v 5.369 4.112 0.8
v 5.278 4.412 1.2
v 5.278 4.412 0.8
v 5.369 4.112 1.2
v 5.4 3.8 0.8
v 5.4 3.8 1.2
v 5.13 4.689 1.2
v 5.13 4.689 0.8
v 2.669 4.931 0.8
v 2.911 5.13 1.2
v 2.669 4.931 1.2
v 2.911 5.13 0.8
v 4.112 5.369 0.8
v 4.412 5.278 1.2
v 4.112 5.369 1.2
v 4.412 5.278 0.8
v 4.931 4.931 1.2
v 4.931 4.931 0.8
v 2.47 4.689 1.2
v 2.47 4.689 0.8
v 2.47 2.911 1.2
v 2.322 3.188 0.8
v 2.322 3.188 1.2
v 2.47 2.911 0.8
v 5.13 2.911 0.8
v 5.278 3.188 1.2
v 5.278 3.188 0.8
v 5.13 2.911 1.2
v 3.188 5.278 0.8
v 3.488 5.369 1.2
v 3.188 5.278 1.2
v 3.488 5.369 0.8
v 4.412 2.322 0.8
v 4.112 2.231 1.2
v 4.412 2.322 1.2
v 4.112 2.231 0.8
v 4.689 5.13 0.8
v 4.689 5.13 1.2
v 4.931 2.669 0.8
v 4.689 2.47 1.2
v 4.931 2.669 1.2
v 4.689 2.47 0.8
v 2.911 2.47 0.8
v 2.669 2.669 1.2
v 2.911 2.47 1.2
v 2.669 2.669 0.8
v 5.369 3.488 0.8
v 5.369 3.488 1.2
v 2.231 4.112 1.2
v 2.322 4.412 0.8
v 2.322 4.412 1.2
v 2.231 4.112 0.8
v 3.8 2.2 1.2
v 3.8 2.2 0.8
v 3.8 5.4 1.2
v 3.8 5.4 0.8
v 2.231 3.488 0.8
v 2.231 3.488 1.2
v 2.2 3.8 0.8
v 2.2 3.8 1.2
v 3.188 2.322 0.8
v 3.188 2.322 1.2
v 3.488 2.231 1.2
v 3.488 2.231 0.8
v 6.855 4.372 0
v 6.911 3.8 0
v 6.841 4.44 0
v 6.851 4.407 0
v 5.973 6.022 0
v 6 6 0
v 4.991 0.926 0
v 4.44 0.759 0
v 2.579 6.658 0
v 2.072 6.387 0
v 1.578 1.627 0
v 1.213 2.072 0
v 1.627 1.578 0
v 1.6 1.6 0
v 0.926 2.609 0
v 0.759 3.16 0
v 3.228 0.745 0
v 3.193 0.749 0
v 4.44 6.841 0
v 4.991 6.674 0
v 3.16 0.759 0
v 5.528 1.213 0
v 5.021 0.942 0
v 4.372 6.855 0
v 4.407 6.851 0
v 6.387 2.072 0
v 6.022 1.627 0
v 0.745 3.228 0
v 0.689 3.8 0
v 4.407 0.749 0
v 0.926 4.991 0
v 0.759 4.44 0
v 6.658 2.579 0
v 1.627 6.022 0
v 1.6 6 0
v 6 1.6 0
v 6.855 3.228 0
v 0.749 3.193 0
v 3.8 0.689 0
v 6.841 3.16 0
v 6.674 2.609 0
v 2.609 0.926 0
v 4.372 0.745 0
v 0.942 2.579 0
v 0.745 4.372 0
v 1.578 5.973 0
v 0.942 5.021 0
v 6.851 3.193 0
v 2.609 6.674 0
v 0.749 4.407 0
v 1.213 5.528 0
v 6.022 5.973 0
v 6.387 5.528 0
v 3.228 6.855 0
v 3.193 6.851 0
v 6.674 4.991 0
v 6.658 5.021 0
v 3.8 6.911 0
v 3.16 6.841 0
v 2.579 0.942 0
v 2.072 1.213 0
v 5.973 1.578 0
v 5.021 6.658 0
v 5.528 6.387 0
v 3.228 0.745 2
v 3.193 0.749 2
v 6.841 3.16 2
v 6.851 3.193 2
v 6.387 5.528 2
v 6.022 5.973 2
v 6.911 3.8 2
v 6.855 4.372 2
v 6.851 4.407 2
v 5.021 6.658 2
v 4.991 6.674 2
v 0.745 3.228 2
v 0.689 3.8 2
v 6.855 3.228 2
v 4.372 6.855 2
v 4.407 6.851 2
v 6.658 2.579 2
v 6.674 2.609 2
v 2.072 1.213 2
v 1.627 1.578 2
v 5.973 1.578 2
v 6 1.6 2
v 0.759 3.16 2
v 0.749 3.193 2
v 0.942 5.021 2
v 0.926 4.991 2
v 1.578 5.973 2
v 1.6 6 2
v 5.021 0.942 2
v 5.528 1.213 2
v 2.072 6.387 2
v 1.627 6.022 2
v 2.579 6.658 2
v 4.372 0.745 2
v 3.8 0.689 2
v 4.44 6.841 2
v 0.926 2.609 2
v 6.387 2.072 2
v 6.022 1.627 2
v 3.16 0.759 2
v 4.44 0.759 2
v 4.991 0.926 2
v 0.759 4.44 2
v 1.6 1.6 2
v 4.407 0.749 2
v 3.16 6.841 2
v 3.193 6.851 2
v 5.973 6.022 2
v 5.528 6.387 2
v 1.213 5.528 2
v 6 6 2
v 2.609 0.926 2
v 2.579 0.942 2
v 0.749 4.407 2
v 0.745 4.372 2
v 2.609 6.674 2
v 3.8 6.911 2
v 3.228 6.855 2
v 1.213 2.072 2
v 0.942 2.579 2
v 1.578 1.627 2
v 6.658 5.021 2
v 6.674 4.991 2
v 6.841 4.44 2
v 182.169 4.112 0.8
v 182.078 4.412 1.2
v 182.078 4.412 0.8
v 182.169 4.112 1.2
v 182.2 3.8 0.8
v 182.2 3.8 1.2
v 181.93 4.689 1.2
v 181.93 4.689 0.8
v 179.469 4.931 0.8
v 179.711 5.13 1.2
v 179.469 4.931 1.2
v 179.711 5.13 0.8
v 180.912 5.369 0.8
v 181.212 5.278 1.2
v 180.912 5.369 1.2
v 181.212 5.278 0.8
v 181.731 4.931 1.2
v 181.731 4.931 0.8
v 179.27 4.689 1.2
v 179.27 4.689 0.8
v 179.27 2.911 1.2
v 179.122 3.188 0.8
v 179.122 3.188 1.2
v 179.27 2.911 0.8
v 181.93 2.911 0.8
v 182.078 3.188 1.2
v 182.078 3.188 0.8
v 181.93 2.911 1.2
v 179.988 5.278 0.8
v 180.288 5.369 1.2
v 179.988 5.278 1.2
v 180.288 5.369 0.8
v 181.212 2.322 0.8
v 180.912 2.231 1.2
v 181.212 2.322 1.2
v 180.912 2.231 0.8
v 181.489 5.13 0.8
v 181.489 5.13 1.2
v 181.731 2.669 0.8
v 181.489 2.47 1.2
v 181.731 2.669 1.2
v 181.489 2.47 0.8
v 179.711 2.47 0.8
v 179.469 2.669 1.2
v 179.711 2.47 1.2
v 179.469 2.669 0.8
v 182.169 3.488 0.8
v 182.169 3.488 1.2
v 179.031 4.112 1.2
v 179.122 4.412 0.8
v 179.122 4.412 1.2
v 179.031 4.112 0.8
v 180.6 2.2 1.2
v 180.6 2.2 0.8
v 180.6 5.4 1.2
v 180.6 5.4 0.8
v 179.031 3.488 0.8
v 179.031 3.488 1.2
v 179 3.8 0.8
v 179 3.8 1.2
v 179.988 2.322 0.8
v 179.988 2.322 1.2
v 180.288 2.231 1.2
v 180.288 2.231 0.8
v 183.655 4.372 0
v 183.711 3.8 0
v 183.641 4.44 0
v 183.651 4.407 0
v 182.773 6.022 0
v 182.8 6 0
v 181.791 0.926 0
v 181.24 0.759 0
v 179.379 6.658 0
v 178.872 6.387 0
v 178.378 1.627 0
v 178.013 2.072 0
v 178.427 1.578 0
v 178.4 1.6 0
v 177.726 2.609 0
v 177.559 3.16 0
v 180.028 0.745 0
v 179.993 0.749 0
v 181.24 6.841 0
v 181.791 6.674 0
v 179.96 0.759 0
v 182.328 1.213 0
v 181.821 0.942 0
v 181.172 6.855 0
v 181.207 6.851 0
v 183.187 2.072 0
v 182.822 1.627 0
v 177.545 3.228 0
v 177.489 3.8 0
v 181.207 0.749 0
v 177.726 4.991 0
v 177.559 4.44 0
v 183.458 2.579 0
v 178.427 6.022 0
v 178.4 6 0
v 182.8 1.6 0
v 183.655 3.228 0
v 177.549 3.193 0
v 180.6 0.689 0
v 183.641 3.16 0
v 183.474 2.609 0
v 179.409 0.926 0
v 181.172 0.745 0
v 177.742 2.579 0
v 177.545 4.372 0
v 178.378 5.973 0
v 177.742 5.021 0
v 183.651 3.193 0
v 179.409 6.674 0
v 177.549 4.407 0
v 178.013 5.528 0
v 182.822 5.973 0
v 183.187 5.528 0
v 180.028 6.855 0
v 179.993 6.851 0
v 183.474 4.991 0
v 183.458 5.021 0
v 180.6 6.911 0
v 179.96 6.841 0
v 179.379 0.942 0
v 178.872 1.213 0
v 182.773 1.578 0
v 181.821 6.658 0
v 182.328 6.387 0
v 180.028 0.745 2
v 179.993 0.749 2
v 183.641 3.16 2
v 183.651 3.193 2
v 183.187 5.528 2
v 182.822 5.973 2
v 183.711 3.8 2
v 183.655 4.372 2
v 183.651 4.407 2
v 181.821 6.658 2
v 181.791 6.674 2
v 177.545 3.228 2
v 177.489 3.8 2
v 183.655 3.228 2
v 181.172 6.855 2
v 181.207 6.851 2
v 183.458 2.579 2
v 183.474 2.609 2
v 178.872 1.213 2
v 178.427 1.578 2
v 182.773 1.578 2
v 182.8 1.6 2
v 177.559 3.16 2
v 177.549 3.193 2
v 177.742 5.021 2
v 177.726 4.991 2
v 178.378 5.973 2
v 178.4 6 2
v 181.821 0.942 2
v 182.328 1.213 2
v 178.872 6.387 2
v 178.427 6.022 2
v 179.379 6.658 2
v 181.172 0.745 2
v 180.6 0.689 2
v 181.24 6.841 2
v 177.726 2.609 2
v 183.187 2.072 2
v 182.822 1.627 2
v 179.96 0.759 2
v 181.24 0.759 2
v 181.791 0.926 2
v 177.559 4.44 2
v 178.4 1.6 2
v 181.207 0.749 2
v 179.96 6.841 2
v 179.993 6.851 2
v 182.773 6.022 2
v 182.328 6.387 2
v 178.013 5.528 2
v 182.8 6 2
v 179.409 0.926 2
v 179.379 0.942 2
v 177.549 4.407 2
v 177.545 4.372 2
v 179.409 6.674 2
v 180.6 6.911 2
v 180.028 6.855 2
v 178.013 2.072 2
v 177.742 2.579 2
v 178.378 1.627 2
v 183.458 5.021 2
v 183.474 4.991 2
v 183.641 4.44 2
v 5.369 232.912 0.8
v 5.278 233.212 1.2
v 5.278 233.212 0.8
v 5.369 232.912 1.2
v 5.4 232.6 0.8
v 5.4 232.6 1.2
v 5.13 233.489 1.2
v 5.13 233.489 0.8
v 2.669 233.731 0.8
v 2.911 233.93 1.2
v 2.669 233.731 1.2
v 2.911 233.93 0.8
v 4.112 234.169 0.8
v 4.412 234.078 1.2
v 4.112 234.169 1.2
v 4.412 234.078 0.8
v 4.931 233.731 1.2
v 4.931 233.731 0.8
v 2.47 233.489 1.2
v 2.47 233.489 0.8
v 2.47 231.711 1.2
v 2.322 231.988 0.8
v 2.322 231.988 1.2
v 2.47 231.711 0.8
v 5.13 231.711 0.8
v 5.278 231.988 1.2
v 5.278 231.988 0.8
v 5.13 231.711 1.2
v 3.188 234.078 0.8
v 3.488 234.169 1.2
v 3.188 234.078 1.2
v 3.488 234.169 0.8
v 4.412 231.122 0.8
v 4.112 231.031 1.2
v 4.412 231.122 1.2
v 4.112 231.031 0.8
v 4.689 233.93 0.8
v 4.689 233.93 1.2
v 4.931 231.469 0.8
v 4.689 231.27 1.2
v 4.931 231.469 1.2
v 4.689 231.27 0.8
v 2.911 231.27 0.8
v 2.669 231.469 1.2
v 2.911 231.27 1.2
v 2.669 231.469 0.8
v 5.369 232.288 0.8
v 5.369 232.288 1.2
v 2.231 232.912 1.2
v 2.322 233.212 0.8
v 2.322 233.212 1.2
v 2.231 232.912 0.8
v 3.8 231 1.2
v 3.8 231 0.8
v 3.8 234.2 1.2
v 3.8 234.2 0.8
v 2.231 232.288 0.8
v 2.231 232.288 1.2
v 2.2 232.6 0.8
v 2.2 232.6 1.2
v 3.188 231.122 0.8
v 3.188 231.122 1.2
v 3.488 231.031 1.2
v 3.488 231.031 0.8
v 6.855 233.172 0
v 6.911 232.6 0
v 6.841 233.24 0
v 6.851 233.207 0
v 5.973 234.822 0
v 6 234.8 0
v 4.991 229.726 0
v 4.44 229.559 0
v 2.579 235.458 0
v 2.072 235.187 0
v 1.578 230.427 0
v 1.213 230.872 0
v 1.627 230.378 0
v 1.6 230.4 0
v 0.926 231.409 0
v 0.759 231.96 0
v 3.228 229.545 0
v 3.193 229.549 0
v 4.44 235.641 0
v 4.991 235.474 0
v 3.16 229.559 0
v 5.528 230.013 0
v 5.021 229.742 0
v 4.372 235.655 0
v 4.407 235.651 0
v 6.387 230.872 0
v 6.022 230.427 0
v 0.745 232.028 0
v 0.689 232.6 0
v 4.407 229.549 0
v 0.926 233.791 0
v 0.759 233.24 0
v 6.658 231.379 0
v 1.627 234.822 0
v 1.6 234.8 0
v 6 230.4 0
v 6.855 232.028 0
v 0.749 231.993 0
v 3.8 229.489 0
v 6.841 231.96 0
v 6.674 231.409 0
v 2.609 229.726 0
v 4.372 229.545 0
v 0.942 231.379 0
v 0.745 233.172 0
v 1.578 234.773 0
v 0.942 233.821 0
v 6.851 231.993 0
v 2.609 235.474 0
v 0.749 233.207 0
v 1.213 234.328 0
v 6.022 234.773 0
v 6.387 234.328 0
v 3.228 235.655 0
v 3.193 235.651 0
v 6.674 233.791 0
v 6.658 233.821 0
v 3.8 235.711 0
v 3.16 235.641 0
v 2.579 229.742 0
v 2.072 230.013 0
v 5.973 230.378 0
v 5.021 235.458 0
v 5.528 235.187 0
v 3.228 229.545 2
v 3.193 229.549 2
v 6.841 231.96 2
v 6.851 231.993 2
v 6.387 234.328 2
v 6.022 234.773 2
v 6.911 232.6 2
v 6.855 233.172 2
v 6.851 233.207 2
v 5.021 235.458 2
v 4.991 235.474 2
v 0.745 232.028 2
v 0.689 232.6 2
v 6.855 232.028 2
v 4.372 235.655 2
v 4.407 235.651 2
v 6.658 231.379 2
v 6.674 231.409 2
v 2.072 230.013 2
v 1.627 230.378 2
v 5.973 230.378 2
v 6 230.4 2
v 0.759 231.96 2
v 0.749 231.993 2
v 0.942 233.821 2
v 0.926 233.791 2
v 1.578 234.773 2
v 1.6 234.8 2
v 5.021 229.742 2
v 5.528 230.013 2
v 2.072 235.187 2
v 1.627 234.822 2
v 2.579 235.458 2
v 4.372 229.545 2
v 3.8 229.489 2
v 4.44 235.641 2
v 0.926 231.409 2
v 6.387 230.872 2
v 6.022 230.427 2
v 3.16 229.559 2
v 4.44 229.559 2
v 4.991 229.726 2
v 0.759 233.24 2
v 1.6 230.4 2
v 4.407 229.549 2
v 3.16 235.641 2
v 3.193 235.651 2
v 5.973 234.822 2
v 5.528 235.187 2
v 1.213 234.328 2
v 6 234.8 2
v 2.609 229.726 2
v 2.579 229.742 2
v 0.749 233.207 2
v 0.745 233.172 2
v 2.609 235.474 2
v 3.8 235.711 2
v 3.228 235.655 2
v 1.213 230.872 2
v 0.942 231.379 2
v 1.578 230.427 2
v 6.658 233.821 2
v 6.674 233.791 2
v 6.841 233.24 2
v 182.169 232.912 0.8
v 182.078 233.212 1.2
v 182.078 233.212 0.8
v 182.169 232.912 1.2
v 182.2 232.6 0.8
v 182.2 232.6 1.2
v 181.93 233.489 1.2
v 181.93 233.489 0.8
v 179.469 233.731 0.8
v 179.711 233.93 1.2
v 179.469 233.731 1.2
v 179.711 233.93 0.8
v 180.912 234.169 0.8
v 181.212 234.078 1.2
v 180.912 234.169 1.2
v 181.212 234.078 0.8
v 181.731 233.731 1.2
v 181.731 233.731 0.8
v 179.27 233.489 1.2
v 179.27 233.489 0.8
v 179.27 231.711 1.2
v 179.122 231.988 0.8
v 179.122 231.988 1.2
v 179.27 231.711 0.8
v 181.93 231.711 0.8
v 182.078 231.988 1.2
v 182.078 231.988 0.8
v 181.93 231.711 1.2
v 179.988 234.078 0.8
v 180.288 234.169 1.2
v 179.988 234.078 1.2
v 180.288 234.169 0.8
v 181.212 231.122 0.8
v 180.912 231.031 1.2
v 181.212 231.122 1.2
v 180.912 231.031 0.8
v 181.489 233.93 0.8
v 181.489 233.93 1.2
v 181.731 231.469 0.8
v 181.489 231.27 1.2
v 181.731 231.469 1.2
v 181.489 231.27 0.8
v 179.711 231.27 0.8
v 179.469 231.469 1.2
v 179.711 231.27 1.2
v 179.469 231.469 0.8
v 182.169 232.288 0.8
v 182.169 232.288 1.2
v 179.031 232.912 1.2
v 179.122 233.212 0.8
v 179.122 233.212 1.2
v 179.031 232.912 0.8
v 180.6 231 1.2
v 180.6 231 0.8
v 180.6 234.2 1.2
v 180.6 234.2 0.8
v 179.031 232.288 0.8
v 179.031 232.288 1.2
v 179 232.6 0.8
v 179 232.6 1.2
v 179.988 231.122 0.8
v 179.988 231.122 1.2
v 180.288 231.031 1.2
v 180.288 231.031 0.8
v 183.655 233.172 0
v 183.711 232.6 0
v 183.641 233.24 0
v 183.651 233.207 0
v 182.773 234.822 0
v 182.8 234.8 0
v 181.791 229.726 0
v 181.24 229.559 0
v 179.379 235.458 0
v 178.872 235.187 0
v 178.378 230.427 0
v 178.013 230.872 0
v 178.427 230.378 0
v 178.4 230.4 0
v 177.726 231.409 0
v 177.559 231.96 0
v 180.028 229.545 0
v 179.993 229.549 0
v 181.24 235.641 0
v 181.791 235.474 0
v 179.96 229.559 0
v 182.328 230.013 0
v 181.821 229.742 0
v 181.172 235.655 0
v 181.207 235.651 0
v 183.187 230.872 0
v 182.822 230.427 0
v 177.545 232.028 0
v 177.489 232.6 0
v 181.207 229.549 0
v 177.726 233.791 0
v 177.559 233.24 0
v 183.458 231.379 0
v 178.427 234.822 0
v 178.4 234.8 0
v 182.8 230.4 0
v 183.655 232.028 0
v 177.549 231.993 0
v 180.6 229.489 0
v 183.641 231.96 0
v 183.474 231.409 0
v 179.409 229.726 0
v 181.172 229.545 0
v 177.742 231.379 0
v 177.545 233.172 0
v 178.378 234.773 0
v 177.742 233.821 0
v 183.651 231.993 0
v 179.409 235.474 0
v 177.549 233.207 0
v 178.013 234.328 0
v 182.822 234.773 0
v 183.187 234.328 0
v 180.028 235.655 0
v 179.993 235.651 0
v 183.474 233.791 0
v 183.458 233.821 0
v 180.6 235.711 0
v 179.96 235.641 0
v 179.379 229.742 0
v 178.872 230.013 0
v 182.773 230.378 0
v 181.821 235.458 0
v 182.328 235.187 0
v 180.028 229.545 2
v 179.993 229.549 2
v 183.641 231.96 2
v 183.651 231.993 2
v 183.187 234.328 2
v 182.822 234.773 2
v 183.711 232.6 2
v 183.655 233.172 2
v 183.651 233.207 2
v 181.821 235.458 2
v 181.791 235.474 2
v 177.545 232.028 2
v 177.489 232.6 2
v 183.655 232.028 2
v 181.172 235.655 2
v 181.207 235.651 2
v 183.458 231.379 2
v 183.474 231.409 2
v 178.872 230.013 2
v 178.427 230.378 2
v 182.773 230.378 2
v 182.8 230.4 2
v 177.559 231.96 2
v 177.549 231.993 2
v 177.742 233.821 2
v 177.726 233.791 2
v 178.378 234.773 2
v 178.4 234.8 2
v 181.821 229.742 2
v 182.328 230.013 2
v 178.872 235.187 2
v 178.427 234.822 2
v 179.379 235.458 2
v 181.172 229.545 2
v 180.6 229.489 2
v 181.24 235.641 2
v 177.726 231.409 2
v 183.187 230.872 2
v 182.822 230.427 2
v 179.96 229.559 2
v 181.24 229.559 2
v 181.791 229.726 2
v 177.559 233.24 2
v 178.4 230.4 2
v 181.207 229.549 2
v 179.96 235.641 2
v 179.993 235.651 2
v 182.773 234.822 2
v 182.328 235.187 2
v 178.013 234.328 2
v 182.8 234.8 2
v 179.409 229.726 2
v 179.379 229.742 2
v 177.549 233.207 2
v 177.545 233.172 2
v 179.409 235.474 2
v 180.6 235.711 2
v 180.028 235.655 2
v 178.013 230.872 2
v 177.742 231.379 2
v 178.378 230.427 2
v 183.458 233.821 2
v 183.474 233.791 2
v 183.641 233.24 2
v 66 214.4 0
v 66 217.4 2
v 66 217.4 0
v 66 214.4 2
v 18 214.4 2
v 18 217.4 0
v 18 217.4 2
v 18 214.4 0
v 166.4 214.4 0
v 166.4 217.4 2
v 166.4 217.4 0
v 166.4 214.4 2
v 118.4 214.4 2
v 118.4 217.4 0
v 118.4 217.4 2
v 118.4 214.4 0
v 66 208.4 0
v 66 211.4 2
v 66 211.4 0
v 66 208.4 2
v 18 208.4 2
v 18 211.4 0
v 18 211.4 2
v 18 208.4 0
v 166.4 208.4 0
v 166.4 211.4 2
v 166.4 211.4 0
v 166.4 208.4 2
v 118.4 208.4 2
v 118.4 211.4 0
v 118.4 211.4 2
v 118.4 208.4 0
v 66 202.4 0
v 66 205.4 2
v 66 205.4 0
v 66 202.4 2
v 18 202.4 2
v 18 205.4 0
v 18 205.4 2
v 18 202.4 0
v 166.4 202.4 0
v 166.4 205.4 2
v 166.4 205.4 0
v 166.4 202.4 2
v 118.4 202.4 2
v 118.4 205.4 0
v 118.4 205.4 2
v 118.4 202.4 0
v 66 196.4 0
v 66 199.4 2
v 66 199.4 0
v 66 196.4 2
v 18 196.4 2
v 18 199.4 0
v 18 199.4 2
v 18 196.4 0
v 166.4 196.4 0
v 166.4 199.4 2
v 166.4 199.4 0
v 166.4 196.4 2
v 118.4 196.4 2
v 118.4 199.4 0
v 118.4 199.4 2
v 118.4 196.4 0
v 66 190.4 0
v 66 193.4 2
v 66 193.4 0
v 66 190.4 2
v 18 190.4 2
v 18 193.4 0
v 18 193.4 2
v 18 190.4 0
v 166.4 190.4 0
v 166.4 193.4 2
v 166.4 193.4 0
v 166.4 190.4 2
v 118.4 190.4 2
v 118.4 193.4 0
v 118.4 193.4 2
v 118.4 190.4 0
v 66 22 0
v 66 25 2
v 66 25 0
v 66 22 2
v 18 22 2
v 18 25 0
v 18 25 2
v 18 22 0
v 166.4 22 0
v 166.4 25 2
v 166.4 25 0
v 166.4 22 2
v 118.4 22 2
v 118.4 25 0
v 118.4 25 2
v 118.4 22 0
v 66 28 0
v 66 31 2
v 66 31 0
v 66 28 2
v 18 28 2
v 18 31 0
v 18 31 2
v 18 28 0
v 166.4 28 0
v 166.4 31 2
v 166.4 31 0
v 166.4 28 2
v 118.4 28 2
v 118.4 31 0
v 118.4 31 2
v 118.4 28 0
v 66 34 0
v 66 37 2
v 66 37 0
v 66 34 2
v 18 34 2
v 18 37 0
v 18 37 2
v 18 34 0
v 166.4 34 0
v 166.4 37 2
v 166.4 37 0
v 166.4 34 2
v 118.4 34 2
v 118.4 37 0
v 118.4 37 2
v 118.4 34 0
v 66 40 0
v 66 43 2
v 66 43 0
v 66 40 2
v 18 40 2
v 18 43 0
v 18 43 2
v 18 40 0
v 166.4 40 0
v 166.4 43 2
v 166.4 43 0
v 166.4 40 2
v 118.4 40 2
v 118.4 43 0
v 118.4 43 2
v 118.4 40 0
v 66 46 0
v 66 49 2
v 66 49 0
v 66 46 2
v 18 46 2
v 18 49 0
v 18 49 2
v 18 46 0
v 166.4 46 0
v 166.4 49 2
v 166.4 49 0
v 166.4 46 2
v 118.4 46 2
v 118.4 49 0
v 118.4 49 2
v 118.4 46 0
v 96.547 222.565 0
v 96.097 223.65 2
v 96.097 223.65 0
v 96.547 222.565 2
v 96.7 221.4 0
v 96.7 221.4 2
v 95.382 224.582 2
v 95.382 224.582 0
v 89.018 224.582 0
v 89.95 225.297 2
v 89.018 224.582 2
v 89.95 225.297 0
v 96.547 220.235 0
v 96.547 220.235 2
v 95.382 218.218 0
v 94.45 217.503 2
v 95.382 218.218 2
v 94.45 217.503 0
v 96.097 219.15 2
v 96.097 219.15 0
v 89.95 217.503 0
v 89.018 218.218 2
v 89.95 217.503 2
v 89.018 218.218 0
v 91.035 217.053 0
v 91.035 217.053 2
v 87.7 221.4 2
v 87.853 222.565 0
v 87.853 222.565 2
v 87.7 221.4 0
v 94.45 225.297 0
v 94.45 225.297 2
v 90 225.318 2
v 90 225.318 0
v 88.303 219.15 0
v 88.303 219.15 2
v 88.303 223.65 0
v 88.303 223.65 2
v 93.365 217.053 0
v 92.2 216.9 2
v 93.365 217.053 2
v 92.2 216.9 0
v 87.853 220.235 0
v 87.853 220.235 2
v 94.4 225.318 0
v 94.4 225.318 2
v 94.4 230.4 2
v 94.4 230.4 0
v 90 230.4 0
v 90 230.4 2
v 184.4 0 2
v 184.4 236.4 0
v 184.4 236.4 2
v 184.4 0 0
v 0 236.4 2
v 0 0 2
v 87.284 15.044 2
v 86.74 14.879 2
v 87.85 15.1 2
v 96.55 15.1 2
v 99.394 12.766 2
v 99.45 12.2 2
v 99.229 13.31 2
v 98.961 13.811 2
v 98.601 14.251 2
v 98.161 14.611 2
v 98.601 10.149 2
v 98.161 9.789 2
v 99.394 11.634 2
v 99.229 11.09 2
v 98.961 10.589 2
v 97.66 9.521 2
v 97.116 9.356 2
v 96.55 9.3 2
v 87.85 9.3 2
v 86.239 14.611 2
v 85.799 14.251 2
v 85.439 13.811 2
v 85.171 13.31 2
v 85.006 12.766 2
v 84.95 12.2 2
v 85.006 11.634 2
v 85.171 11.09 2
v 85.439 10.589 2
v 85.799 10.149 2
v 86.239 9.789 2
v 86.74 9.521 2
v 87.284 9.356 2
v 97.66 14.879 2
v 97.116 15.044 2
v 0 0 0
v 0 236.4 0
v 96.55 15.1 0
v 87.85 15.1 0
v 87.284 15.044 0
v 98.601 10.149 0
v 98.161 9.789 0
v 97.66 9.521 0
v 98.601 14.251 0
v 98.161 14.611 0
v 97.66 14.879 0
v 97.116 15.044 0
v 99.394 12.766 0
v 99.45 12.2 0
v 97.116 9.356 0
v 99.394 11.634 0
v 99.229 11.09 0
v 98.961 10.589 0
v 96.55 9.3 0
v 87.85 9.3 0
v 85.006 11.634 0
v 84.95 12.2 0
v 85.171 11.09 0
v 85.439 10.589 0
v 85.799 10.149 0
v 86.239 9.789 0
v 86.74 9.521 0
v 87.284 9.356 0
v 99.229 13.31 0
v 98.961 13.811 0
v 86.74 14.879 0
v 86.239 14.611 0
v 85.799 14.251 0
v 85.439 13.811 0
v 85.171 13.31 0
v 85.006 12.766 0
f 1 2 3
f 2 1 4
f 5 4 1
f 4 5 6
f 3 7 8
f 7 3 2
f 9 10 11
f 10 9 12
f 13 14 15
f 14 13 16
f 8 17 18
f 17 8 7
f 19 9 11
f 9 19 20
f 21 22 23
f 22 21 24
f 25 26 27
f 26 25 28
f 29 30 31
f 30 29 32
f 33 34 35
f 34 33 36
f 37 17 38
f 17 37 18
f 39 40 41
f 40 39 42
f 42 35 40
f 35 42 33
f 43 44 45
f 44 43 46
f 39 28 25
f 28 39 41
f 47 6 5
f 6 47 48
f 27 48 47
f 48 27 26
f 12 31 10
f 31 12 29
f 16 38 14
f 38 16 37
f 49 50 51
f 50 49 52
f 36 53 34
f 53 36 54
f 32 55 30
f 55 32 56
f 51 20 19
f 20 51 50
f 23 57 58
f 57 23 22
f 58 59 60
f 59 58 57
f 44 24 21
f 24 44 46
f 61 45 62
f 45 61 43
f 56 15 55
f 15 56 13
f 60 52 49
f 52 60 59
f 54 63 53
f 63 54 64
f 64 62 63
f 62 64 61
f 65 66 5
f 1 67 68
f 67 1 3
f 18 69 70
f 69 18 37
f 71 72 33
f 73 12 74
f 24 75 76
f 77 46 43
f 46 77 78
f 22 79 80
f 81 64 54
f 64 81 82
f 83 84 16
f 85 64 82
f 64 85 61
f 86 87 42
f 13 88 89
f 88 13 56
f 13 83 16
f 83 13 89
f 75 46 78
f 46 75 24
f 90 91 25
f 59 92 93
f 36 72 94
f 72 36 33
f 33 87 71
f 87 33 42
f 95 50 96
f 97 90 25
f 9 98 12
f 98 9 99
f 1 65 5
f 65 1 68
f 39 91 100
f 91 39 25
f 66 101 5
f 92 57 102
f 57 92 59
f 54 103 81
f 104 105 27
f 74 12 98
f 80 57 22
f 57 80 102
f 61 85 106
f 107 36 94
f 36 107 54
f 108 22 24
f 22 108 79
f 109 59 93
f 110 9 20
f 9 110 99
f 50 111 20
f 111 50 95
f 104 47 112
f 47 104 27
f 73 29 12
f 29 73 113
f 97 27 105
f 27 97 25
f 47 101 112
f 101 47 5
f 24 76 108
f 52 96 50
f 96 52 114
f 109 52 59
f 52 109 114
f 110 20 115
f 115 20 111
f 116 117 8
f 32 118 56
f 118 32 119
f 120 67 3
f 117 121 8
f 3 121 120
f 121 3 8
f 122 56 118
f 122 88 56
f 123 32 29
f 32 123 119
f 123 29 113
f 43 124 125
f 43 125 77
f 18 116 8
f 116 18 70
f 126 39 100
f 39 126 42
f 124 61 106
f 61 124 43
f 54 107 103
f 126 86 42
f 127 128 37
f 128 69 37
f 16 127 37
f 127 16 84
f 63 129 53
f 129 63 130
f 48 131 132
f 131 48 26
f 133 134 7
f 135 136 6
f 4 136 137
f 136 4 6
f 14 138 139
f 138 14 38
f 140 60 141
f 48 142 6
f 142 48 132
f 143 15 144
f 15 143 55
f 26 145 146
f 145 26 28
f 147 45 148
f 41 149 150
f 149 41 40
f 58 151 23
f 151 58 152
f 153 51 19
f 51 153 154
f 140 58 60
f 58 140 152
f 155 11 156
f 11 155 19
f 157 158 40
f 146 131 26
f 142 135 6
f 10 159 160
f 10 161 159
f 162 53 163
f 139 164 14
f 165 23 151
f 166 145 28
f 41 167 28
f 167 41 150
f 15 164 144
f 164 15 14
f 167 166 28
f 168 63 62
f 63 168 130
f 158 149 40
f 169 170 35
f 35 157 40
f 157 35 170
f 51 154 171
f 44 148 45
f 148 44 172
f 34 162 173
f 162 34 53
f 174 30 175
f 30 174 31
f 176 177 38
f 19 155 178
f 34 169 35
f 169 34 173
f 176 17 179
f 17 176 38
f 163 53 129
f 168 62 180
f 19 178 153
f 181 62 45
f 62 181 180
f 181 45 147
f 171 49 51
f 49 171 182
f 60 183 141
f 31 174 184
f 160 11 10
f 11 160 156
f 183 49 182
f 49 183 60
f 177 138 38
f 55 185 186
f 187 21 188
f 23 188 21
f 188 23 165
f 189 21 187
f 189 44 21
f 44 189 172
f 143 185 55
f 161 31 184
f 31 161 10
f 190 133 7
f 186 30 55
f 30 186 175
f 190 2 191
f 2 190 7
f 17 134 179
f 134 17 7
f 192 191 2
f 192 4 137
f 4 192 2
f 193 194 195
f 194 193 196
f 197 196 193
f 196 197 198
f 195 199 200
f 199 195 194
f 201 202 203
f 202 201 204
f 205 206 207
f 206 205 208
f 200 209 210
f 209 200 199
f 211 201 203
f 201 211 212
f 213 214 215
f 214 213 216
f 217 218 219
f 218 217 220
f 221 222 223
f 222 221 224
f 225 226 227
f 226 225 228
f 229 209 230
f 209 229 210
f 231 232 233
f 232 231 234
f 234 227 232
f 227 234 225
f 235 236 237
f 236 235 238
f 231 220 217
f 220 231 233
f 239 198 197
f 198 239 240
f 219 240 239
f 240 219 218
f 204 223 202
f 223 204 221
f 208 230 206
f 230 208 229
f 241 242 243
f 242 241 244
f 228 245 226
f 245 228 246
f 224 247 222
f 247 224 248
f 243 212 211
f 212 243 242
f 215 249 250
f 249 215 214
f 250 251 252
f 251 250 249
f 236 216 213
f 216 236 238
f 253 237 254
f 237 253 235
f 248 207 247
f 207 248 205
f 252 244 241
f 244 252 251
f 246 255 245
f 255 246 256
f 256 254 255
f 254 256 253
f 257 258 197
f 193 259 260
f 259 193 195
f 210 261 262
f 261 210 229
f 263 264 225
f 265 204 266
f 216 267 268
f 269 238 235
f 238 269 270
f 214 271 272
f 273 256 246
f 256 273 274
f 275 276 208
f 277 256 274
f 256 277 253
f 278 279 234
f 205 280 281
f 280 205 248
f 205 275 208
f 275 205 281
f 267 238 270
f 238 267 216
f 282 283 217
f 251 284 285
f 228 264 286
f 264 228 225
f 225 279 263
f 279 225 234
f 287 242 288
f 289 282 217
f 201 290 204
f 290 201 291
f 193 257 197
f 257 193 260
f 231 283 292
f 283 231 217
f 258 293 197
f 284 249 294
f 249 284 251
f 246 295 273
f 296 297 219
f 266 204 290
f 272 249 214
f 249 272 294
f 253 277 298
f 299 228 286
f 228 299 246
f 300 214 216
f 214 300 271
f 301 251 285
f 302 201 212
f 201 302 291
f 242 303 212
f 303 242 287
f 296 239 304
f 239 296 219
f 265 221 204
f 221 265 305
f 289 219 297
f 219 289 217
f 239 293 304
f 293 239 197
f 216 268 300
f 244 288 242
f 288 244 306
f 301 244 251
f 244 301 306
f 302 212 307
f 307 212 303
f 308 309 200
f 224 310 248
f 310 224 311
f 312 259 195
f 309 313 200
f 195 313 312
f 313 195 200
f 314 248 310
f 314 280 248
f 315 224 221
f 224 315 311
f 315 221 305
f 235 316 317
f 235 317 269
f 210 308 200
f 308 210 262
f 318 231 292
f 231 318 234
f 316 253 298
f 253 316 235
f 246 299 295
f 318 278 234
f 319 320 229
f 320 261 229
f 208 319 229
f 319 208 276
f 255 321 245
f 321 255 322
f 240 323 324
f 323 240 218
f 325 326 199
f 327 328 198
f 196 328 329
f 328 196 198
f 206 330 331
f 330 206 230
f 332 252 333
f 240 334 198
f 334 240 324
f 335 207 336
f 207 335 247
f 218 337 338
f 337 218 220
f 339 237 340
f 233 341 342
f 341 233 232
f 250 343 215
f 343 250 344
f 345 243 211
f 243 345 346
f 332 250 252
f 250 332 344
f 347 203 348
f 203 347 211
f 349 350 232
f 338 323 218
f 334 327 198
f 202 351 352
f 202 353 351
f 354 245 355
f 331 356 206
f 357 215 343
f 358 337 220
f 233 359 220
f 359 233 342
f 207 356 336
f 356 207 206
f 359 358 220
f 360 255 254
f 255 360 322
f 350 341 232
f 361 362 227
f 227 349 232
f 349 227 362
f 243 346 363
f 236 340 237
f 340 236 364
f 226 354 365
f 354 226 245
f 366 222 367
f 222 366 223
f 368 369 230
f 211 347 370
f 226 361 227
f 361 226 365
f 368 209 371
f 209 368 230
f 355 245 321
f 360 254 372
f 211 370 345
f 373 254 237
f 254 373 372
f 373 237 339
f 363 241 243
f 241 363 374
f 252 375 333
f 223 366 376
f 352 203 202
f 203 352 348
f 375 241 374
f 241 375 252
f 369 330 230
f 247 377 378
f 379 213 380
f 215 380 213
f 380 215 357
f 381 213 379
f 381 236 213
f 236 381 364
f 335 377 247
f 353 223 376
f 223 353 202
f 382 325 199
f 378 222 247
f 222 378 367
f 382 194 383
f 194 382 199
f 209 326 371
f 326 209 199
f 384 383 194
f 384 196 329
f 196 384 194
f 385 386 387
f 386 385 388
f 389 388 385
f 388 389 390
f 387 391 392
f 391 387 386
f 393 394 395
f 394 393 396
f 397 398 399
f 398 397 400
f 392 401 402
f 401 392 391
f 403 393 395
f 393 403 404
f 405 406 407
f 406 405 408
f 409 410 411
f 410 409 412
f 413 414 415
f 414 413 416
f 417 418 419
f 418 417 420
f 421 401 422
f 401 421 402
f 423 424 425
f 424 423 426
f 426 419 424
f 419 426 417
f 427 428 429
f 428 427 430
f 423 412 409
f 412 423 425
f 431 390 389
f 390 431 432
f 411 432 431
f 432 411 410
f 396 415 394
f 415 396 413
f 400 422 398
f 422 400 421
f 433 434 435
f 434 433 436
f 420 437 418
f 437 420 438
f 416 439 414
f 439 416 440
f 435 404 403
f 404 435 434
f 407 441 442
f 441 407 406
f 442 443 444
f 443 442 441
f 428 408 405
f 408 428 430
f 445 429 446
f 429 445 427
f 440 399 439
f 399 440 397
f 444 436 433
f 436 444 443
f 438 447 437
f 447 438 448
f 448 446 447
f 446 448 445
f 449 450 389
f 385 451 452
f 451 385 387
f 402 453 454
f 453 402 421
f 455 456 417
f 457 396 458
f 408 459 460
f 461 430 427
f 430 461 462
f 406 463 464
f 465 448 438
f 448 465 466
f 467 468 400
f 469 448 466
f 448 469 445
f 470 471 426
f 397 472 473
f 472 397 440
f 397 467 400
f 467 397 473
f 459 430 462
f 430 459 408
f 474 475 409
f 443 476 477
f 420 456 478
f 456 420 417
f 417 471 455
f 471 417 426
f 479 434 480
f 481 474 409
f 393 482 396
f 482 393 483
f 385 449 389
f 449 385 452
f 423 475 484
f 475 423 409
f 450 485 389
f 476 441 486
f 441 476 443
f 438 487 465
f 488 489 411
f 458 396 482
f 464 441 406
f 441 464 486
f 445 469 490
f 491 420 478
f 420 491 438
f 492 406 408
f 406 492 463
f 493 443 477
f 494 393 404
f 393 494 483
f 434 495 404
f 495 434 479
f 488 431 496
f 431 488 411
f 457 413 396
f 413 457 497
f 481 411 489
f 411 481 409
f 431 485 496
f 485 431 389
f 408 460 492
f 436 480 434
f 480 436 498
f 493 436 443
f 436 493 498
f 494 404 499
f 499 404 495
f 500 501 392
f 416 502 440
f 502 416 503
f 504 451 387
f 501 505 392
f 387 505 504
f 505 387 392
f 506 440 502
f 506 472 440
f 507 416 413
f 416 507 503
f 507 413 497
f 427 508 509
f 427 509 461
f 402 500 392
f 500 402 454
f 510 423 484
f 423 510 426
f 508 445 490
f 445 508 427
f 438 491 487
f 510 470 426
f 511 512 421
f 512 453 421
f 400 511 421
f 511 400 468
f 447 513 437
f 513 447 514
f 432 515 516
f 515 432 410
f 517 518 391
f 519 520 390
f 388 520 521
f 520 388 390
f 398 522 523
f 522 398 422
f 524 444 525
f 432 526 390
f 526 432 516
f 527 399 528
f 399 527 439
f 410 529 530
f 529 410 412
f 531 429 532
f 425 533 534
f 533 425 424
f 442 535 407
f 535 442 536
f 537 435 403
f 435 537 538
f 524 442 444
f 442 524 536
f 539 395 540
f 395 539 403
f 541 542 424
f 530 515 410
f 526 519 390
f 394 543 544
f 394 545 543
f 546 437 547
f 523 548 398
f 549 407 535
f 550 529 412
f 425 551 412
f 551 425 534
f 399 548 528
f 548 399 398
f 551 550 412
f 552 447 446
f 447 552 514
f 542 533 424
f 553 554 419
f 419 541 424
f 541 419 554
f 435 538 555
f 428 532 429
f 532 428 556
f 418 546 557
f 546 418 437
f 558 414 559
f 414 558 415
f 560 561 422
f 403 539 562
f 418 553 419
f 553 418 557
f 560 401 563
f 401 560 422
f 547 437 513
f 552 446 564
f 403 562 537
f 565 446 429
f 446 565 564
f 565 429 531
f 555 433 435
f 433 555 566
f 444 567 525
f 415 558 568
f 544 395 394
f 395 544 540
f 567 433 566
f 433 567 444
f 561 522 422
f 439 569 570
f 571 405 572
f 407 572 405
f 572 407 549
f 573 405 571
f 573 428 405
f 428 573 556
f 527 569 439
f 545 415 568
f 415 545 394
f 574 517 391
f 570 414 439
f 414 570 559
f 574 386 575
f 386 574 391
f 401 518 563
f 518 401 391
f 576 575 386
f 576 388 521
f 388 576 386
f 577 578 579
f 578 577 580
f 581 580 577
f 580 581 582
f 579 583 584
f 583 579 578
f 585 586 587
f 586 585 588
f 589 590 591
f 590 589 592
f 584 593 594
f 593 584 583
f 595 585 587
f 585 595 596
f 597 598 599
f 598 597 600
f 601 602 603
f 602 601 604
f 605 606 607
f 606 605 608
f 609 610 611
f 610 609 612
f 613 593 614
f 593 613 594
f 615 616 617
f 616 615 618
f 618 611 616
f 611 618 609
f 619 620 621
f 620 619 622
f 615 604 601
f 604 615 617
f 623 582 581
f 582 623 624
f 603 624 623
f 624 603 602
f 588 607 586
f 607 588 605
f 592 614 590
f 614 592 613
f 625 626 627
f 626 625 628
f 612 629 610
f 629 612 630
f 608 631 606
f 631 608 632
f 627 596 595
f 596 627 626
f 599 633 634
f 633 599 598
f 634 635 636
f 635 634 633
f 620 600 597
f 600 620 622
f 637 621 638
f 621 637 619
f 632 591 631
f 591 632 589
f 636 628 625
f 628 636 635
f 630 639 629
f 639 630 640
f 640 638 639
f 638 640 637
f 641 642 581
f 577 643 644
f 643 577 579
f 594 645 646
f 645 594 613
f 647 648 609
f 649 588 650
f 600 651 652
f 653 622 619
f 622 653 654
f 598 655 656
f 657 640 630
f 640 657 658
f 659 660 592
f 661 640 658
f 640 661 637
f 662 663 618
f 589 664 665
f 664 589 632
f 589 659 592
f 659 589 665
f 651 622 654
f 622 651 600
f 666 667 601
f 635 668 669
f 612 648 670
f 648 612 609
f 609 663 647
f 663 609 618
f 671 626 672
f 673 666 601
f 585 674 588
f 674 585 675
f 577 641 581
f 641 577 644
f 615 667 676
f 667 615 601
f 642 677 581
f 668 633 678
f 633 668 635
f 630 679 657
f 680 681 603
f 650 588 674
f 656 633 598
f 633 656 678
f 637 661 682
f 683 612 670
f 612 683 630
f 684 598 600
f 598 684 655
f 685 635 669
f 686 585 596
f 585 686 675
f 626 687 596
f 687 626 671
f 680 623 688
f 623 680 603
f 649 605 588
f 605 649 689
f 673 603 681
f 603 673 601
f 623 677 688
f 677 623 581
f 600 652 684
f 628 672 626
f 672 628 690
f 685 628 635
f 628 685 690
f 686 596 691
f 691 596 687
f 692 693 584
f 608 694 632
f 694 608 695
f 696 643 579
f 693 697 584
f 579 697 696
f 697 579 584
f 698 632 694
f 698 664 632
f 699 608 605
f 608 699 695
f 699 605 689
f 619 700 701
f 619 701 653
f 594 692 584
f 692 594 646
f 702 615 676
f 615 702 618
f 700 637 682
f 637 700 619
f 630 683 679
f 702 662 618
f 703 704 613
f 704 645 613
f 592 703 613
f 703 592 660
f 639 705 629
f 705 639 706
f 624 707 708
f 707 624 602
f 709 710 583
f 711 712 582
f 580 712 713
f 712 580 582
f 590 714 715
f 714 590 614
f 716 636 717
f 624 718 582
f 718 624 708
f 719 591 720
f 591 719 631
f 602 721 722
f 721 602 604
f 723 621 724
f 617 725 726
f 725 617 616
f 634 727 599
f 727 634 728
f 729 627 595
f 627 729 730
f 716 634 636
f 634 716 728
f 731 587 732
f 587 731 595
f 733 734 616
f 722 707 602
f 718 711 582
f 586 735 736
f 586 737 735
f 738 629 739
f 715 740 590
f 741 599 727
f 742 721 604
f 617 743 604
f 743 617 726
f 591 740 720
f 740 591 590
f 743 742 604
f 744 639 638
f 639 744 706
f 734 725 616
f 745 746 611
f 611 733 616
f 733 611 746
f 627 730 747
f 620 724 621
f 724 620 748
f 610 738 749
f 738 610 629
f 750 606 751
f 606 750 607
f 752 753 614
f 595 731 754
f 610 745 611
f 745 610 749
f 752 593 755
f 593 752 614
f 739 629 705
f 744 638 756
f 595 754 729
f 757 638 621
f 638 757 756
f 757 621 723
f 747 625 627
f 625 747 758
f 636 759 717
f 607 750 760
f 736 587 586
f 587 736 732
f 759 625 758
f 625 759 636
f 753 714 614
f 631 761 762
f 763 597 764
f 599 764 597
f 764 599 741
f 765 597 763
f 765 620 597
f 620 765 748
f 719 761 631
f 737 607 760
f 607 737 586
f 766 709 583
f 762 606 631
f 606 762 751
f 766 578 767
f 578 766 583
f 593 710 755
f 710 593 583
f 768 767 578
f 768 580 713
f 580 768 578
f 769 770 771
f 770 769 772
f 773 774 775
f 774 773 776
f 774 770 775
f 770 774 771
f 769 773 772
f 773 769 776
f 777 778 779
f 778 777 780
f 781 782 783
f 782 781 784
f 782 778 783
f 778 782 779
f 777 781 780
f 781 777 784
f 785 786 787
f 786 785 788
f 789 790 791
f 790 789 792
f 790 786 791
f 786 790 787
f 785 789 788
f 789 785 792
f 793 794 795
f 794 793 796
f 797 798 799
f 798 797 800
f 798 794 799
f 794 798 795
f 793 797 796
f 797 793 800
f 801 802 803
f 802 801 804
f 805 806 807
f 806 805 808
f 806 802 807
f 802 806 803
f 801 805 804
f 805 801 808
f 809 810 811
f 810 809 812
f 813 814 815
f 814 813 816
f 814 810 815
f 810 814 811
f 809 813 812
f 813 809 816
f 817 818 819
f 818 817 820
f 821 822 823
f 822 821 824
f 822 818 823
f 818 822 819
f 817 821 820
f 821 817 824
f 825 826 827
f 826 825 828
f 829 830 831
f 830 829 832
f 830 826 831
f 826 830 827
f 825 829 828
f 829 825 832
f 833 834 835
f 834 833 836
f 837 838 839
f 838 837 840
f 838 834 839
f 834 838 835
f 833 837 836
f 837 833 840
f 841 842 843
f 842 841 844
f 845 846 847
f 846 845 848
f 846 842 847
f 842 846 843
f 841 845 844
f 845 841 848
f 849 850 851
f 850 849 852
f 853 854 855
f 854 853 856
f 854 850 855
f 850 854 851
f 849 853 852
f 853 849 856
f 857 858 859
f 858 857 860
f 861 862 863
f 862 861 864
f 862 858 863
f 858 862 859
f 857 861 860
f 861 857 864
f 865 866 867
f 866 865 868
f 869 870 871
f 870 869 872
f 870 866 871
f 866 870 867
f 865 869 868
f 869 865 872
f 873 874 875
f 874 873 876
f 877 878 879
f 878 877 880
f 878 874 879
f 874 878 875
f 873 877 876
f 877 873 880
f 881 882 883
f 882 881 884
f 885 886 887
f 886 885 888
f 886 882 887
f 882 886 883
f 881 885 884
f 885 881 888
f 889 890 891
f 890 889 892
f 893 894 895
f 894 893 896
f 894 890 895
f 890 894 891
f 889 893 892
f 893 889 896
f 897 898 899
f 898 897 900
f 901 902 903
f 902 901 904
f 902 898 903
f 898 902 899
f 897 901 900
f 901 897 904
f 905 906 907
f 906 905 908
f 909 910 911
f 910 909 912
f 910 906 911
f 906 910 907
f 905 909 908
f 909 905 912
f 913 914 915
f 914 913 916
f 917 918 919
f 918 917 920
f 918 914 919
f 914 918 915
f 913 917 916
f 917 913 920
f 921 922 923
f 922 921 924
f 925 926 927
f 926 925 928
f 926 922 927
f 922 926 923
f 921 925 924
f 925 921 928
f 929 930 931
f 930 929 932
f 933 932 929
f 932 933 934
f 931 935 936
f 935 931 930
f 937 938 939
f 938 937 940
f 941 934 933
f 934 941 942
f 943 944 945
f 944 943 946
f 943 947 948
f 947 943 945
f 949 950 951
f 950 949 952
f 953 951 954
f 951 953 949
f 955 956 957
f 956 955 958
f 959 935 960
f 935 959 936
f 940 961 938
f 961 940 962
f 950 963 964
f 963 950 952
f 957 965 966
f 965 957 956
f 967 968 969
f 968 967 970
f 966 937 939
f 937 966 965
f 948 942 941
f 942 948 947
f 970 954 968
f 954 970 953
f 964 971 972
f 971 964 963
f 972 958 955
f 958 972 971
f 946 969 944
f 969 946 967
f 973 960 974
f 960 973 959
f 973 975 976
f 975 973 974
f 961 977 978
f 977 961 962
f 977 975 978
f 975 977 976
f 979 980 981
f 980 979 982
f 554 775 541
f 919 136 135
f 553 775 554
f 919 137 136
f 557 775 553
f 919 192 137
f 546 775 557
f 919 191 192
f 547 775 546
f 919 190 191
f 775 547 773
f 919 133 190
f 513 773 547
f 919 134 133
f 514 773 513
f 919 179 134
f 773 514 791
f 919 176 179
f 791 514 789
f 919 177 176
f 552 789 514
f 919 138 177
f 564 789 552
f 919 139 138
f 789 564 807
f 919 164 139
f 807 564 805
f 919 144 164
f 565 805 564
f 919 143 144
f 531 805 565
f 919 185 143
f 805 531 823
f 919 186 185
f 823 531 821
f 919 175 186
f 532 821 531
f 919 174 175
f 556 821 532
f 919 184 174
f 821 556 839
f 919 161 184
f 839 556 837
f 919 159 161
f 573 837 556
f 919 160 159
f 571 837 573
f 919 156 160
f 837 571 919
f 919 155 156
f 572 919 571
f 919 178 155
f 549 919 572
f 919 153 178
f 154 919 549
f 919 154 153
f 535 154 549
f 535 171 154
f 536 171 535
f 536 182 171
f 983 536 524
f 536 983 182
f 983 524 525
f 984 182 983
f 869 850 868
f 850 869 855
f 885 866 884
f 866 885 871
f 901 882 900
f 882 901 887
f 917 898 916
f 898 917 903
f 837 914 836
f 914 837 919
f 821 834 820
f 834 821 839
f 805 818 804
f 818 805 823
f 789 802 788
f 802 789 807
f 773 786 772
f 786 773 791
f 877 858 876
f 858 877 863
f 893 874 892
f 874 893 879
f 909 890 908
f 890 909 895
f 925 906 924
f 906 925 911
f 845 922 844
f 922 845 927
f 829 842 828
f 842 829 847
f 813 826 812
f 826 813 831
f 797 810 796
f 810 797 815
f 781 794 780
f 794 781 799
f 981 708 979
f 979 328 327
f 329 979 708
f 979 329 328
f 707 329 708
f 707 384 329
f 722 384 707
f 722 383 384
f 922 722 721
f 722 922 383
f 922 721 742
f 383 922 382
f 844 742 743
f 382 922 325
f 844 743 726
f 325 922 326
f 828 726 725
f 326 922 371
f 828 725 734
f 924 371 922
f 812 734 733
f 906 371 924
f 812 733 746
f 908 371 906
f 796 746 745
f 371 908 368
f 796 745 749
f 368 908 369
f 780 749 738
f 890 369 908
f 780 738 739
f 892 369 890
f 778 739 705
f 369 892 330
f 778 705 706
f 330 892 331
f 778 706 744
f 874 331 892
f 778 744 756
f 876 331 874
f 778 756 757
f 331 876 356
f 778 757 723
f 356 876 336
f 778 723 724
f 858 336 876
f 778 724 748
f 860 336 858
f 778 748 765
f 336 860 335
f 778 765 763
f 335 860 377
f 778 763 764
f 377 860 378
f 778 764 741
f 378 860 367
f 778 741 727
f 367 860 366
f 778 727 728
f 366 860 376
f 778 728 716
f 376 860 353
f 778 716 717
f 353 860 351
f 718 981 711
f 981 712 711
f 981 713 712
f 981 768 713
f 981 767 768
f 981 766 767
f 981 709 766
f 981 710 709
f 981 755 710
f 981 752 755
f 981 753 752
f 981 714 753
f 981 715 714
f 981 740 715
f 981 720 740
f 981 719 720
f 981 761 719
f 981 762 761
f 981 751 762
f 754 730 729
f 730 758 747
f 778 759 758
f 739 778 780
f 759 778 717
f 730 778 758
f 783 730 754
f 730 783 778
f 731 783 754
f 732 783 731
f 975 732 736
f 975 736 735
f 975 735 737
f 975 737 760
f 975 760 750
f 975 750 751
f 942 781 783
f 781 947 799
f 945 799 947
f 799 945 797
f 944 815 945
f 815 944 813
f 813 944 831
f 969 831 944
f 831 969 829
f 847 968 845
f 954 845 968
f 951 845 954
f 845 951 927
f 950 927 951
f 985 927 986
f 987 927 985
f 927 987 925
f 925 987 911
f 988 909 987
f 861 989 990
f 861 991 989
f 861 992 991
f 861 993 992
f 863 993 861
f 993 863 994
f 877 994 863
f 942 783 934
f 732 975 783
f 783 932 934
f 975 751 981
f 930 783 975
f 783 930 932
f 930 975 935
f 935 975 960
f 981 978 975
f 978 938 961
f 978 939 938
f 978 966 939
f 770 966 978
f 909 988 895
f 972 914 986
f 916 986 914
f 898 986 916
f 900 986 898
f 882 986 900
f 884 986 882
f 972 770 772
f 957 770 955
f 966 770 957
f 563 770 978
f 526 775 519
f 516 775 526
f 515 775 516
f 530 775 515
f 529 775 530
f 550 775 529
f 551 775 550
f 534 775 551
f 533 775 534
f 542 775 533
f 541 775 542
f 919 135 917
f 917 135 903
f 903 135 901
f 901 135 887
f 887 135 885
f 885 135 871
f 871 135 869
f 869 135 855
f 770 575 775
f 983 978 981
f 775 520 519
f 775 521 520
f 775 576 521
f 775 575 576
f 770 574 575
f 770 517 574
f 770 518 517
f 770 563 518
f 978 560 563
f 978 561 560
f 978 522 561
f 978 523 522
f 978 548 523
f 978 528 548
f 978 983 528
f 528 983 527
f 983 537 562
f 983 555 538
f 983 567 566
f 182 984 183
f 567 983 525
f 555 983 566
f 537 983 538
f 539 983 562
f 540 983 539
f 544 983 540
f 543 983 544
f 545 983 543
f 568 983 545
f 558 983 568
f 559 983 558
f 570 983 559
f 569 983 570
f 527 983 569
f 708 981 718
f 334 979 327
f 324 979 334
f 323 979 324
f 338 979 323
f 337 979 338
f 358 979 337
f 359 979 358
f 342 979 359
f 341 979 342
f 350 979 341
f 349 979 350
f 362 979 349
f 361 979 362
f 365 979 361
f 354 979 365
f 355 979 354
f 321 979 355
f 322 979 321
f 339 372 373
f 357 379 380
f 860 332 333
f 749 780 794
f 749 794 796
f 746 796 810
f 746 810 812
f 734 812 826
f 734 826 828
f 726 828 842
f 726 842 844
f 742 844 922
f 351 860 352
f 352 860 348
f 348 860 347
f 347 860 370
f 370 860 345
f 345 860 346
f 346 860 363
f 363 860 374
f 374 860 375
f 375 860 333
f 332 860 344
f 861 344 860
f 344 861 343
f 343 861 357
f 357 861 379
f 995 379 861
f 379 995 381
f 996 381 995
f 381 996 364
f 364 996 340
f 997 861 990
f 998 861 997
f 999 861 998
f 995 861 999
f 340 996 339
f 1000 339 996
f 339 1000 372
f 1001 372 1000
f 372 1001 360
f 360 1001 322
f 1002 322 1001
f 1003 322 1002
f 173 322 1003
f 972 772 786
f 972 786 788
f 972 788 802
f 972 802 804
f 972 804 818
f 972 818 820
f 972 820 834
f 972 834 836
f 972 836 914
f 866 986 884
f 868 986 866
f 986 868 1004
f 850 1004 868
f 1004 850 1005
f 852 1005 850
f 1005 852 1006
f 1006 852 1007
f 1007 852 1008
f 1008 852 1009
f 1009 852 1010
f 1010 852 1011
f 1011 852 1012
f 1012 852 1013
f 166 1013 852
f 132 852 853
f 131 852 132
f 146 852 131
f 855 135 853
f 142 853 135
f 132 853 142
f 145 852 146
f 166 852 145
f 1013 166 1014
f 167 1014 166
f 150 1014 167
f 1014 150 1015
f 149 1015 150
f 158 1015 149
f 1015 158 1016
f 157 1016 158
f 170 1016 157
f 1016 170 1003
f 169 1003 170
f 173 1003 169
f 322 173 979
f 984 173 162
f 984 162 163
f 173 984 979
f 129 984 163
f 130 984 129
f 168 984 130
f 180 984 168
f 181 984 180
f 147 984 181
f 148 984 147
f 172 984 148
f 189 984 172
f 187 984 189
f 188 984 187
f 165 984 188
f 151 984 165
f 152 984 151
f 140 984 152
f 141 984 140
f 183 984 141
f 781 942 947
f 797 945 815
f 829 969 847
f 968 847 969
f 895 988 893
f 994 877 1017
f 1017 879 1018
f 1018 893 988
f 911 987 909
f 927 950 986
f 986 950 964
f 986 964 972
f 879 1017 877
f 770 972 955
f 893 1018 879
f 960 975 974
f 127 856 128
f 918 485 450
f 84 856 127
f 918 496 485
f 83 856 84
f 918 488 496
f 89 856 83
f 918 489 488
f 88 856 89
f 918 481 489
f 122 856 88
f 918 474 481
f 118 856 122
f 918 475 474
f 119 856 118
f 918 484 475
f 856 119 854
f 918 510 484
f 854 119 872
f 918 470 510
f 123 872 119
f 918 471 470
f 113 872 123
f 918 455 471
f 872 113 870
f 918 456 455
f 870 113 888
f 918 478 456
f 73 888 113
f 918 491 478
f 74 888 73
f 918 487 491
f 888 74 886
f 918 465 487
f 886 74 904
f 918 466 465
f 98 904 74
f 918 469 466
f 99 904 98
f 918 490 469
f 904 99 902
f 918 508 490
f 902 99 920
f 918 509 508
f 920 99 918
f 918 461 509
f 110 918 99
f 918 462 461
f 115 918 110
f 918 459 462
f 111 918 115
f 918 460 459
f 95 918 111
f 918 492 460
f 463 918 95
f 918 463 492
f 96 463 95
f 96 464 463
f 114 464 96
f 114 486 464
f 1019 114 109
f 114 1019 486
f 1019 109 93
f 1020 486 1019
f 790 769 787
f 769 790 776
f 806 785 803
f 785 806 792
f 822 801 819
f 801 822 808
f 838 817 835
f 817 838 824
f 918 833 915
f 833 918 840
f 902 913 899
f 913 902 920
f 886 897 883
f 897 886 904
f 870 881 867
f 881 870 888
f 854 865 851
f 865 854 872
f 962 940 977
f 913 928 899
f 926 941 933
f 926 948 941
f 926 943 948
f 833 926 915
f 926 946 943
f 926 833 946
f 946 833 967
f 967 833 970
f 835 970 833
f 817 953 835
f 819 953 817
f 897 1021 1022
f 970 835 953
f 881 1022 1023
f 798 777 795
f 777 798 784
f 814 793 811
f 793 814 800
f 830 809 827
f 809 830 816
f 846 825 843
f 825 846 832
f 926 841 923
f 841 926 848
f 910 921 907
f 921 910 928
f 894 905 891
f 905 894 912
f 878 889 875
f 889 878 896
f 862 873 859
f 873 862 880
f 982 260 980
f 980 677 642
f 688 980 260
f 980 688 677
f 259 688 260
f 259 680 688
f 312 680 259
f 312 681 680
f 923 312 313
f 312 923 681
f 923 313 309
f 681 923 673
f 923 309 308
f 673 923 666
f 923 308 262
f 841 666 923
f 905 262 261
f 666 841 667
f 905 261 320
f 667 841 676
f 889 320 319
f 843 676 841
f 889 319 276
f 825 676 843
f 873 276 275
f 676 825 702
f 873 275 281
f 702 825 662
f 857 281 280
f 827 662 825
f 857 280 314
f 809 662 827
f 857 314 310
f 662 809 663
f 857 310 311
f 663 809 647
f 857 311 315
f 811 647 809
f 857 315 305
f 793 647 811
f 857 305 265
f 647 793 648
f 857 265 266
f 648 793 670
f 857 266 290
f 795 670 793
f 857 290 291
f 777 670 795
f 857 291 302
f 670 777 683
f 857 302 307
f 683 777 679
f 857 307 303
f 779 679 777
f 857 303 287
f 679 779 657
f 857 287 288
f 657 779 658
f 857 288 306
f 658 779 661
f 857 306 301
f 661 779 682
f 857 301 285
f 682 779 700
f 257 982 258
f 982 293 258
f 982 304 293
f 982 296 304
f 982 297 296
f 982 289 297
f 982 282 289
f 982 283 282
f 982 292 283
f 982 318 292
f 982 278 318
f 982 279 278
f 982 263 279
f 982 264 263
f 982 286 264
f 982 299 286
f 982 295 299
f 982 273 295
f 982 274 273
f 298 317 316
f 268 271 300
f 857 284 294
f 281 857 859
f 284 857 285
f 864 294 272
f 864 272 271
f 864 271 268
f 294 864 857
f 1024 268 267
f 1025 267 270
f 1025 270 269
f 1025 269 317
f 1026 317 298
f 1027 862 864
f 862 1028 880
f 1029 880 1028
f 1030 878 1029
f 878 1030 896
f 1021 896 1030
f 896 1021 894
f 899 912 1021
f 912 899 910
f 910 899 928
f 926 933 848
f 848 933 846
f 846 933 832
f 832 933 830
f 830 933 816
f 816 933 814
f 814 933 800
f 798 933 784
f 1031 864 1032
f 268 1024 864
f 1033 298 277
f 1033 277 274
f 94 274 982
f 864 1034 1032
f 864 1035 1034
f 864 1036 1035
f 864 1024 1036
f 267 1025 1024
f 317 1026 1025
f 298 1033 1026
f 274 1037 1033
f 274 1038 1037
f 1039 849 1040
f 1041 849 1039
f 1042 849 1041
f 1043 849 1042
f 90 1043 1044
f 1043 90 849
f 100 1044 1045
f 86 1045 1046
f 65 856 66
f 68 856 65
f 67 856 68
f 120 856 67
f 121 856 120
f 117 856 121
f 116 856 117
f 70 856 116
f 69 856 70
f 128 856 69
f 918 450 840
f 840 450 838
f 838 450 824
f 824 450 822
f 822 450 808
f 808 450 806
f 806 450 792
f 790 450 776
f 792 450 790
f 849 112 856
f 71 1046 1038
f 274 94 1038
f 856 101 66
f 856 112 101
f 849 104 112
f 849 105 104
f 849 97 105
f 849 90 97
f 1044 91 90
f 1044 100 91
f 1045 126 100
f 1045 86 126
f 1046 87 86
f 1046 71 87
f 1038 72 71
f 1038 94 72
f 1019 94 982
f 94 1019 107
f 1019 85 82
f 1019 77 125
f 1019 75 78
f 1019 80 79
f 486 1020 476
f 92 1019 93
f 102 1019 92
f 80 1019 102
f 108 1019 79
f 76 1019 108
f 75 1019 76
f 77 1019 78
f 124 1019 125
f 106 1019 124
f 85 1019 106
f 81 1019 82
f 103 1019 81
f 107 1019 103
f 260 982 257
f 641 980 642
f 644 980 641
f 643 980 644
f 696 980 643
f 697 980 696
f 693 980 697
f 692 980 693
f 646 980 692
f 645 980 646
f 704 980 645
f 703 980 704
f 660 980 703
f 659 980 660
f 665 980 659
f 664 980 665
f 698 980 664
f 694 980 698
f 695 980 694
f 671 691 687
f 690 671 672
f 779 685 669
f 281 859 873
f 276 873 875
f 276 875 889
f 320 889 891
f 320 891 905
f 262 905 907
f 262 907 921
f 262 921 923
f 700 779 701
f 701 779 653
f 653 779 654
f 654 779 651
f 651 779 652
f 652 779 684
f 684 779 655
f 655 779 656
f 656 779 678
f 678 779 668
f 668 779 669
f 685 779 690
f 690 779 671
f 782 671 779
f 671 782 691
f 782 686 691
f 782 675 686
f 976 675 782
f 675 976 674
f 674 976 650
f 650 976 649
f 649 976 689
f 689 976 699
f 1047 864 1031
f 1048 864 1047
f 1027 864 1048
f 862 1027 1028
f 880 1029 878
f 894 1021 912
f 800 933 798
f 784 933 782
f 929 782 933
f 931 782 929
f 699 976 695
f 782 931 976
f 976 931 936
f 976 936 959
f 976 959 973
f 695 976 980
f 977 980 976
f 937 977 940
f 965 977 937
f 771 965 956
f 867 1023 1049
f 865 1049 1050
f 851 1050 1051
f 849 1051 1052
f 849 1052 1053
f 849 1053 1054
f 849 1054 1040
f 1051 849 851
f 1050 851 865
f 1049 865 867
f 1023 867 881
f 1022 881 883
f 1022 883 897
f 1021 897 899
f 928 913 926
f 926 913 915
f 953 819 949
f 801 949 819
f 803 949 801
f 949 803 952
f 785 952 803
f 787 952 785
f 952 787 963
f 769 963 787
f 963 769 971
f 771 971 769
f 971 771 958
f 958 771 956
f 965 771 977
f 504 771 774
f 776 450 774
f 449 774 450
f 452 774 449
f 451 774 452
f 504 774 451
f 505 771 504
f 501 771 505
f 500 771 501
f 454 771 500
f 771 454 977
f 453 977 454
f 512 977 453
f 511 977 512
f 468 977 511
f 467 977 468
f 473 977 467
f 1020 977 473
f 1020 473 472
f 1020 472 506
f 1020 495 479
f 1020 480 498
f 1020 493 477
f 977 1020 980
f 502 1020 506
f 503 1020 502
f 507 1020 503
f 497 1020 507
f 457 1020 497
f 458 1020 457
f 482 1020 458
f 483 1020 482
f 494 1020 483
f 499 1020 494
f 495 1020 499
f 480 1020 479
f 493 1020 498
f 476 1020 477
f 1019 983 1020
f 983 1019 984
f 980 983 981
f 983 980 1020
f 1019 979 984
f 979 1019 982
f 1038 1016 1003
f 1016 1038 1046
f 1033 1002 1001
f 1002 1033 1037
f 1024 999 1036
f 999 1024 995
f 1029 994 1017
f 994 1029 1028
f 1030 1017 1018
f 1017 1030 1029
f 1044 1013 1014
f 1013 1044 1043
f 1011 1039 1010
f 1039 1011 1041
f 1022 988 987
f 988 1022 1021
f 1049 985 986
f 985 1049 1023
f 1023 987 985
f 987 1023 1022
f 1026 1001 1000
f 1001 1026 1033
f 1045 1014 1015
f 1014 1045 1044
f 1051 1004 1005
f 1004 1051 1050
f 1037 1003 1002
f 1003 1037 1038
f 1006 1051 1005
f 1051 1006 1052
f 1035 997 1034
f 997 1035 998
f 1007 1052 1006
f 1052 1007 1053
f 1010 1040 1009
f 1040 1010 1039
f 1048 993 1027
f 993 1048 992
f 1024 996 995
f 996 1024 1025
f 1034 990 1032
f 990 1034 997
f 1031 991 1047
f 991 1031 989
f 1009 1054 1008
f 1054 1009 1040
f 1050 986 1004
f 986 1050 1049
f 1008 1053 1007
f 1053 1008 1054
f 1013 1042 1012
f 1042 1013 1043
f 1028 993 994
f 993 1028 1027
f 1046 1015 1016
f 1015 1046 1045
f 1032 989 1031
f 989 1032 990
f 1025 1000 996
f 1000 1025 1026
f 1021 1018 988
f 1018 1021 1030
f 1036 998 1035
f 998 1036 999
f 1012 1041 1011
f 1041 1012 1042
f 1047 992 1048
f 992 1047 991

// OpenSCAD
// ==============================================================================
// WORDCLOCK ESP32 - OPCION 2: TAPA TRASERA INCRUSTADA AL RAS (MARCO OPTIMIZADO)
// PIEZA 3: TAPA INCRUSTADA DE 184.4 x 236.4 mm
// Offset de tornillos: 3.8 mm desde borde de tapa (Alineado a 5.6 mm desde el exterior del marco)
// Avellanado simétrico (doble cara) para que la cabeza del tornillo encaje sin importar el lado
// ==============================================================================

box_w       = 188.0;
box_h       = 240.0;
wall_thick  = 1.6;     // Pared optimizada de 1.6 mm
clearance   = 0.2;     // 0.2 mm de holgura por lado
lid_thick   = 2.0;

// Dimensiones reducidas para encajar dentro del perímetro interno
lid_w       = box_w - (2 * wall_thick) - (2 * clearance); // 184.4 mm
lid_h       = box_h - (2 * wall_thick) - (2 * clearance); // 236.4 mm

// Offset del centro de tornillo desde el borde de la tapa incrustada
// Frame offset (5.6 mm) - Margen borde (1.8 mm) = 3.8 mm
screw_off_lid = (wall_thick + 4.0) - wall_thick - clearance; // 3.8 mm

module double_countersunk_hole(h = 2.0) {
    union() {
        // Pasante central M3
        translate([0, 0, -0.1]) cylinder(r = 1.6, h = h + 0.2, $fn = 32);
        
        // Avellanado Cara A (Cono de 1.6 mm a 3.3 mm en los primeros 0.9 mm)
        translate([0, 0, -0.1]) cylinder(r1 = 3.3, r2 = 1.6, h = 0.9, $fn = 32);
        
        // Avellanado Cara B (Cono de 1.6 mm a 3.3 mm en los últimos 0.9 mm)
        translate([0, 0, h - 0.8]) cylinder(r1 = 1.6, r2 = 3.3, h = 0.9, $fn = 32);
    }
}

module wordclock_back_lid() {
    difference() {
        // 1. Placa Base Incrustada (184.4 x 236.4 x 2.0 mm)
        cube([lid_w, lid_h, lid_thick]);

        // 2. Orificios M3 con Avellanado Doble Cara (Alineados a 5.6 mm del marco)
        translate([screw_off_lid, screw_off_lid, 0])                 double_countersunk_hole(lid_thick);
        translate([lid_w - screw_off_lid, screw_off_lid, 0])         double_countersunk_hole(lid_thick);
        translate([screw_off_lid, lid_h - screw_off_lid, 0])         double_countersunk_hole(lid_thick);
        translate([lid_w - screw_off_lid, lid_h - screw_off_lid, 0]) double_countersunk_hole(lid_thick);

        // 3. Ranuras de Ventilación Superior
        for (i = [0 : 4]) {
            y_slot = lid_h - 22 - (i * 6);
            translate([18, y_slot, -0.1])         cube([48, 3.0, lid_thick + 0.2]);
            translate([lid_w - 66, y_slot, -0.1]) cube([48, 3.0, lid_thick + 0.2]);
        }

        // 4. Ranuras de Ventilación Inferior
        for (i = [0 : 4]) {
            y_slot = 22 + (i * 6);
            translate([18, y_slot, -0.1])         cube([48, 3.0, lid_thick + 0.2]);
            translate([lid_w - 66, y_slot, -0.1]) cube([48, 3.0, lid_thick + 0.2]);
        }

        // 5. RANURA USB-C OBLONGA / PANELSOCKET (14.5 x 5.8 mm con r = 2.9 mm)
        translate([lid_w / 2, 12.2, -0.1]) {
            hull() {
                translate([-4.35, 0, 0]) cylinder(r = 2.9, h = lid_thick + 0.2, $fn = 32);
                translate([ 4.35, 0, 0]) cylinder(r = 2.9, h = lid_thick + 0.2, $fn = 32);
            }
        }

        // 6. Muesca de cerradura (Keyhole) para colgar en pared
        translate([lid_w / 2, lid_h - 15, -0.1]) {
            union() {
                cylinder(r = 4.5, h = lid_thick + 0.2, $fn = 24);
                translate([-2.2, 0, 0]) cube([4.4, 9.0, lid_thick + 0.2]);
            }
        }
    }
}

wordclock_back_lid();
